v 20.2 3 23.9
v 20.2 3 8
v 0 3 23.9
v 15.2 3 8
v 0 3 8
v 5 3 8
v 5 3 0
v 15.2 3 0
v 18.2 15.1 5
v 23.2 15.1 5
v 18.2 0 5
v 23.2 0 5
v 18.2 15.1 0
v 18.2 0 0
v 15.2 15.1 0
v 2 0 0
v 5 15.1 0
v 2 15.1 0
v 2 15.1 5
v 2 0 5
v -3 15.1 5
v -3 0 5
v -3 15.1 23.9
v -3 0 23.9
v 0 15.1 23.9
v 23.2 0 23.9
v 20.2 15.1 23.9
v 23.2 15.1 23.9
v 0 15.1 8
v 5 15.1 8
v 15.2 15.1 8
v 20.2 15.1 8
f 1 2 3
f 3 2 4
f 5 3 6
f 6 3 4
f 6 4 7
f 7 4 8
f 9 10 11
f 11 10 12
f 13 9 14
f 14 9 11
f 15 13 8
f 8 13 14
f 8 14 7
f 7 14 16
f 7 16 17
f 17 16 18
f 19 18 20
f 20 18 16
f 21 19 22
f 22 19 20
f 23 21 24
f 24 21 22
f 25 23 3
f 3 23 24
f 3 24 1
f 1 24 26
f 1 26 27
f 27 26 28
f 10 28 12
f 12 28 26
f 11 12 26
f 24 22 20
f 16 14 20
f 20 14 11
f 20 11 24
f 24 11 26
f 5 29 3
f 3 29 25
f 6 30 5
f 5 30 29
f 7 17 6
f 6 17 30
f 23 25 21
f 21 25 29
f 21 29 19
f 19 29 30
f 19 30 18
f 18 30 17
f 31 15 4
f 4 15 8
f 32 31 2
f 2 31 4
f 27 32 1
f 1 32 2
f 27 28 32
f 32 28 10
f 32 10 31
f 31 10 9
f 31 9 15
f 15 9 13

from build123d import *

# Parameters (mm, degrees)
BOSS_EXTRUDE1_DEPTH = 3
BOSS_EXTRUDE2_DEPTH = 15.1


with BuildPart() as part:
    # Sketch1 → Boss-Extrude1 (new body)
    with BuildSketch(Plane(origin=(0, 0, 0), x_dir=(1, 0, 0), z_dir=(0, 1, 0))):
        Polygon((2, 0), (2, -5), (-3, -5), (-3, -23.9), (23.2, -23.9), (23.2, -5), (18.2, -5), (18.2, 0), align=None)
    extrude(amount=BOSS_EXTRUDE1_DEPTH)

    # Sketch1<3> → Boss-Extrude2 (add)
    with BuildSketch(Plane(origin=(0, 0, 0), x_dir=(1, 0, 0), z_dir=(0, 1, 0))):
        Polygon((5, -8), (5, 0), (2, 0), (2, -5), (-3, -5), (-3, -23.9), (0, -23.9), (0, -8), align=None)
        Polygon((18.2, 0), (15.2, 0), (15.2, -8), (20.2, -8), (20.2, -23.9), (23.2, -23.9), (23.2, -5), (18.2, -5), align=None)
    extrude(amount=BOSS_EXTRUDE2_DEPTH)


solid = part.part
